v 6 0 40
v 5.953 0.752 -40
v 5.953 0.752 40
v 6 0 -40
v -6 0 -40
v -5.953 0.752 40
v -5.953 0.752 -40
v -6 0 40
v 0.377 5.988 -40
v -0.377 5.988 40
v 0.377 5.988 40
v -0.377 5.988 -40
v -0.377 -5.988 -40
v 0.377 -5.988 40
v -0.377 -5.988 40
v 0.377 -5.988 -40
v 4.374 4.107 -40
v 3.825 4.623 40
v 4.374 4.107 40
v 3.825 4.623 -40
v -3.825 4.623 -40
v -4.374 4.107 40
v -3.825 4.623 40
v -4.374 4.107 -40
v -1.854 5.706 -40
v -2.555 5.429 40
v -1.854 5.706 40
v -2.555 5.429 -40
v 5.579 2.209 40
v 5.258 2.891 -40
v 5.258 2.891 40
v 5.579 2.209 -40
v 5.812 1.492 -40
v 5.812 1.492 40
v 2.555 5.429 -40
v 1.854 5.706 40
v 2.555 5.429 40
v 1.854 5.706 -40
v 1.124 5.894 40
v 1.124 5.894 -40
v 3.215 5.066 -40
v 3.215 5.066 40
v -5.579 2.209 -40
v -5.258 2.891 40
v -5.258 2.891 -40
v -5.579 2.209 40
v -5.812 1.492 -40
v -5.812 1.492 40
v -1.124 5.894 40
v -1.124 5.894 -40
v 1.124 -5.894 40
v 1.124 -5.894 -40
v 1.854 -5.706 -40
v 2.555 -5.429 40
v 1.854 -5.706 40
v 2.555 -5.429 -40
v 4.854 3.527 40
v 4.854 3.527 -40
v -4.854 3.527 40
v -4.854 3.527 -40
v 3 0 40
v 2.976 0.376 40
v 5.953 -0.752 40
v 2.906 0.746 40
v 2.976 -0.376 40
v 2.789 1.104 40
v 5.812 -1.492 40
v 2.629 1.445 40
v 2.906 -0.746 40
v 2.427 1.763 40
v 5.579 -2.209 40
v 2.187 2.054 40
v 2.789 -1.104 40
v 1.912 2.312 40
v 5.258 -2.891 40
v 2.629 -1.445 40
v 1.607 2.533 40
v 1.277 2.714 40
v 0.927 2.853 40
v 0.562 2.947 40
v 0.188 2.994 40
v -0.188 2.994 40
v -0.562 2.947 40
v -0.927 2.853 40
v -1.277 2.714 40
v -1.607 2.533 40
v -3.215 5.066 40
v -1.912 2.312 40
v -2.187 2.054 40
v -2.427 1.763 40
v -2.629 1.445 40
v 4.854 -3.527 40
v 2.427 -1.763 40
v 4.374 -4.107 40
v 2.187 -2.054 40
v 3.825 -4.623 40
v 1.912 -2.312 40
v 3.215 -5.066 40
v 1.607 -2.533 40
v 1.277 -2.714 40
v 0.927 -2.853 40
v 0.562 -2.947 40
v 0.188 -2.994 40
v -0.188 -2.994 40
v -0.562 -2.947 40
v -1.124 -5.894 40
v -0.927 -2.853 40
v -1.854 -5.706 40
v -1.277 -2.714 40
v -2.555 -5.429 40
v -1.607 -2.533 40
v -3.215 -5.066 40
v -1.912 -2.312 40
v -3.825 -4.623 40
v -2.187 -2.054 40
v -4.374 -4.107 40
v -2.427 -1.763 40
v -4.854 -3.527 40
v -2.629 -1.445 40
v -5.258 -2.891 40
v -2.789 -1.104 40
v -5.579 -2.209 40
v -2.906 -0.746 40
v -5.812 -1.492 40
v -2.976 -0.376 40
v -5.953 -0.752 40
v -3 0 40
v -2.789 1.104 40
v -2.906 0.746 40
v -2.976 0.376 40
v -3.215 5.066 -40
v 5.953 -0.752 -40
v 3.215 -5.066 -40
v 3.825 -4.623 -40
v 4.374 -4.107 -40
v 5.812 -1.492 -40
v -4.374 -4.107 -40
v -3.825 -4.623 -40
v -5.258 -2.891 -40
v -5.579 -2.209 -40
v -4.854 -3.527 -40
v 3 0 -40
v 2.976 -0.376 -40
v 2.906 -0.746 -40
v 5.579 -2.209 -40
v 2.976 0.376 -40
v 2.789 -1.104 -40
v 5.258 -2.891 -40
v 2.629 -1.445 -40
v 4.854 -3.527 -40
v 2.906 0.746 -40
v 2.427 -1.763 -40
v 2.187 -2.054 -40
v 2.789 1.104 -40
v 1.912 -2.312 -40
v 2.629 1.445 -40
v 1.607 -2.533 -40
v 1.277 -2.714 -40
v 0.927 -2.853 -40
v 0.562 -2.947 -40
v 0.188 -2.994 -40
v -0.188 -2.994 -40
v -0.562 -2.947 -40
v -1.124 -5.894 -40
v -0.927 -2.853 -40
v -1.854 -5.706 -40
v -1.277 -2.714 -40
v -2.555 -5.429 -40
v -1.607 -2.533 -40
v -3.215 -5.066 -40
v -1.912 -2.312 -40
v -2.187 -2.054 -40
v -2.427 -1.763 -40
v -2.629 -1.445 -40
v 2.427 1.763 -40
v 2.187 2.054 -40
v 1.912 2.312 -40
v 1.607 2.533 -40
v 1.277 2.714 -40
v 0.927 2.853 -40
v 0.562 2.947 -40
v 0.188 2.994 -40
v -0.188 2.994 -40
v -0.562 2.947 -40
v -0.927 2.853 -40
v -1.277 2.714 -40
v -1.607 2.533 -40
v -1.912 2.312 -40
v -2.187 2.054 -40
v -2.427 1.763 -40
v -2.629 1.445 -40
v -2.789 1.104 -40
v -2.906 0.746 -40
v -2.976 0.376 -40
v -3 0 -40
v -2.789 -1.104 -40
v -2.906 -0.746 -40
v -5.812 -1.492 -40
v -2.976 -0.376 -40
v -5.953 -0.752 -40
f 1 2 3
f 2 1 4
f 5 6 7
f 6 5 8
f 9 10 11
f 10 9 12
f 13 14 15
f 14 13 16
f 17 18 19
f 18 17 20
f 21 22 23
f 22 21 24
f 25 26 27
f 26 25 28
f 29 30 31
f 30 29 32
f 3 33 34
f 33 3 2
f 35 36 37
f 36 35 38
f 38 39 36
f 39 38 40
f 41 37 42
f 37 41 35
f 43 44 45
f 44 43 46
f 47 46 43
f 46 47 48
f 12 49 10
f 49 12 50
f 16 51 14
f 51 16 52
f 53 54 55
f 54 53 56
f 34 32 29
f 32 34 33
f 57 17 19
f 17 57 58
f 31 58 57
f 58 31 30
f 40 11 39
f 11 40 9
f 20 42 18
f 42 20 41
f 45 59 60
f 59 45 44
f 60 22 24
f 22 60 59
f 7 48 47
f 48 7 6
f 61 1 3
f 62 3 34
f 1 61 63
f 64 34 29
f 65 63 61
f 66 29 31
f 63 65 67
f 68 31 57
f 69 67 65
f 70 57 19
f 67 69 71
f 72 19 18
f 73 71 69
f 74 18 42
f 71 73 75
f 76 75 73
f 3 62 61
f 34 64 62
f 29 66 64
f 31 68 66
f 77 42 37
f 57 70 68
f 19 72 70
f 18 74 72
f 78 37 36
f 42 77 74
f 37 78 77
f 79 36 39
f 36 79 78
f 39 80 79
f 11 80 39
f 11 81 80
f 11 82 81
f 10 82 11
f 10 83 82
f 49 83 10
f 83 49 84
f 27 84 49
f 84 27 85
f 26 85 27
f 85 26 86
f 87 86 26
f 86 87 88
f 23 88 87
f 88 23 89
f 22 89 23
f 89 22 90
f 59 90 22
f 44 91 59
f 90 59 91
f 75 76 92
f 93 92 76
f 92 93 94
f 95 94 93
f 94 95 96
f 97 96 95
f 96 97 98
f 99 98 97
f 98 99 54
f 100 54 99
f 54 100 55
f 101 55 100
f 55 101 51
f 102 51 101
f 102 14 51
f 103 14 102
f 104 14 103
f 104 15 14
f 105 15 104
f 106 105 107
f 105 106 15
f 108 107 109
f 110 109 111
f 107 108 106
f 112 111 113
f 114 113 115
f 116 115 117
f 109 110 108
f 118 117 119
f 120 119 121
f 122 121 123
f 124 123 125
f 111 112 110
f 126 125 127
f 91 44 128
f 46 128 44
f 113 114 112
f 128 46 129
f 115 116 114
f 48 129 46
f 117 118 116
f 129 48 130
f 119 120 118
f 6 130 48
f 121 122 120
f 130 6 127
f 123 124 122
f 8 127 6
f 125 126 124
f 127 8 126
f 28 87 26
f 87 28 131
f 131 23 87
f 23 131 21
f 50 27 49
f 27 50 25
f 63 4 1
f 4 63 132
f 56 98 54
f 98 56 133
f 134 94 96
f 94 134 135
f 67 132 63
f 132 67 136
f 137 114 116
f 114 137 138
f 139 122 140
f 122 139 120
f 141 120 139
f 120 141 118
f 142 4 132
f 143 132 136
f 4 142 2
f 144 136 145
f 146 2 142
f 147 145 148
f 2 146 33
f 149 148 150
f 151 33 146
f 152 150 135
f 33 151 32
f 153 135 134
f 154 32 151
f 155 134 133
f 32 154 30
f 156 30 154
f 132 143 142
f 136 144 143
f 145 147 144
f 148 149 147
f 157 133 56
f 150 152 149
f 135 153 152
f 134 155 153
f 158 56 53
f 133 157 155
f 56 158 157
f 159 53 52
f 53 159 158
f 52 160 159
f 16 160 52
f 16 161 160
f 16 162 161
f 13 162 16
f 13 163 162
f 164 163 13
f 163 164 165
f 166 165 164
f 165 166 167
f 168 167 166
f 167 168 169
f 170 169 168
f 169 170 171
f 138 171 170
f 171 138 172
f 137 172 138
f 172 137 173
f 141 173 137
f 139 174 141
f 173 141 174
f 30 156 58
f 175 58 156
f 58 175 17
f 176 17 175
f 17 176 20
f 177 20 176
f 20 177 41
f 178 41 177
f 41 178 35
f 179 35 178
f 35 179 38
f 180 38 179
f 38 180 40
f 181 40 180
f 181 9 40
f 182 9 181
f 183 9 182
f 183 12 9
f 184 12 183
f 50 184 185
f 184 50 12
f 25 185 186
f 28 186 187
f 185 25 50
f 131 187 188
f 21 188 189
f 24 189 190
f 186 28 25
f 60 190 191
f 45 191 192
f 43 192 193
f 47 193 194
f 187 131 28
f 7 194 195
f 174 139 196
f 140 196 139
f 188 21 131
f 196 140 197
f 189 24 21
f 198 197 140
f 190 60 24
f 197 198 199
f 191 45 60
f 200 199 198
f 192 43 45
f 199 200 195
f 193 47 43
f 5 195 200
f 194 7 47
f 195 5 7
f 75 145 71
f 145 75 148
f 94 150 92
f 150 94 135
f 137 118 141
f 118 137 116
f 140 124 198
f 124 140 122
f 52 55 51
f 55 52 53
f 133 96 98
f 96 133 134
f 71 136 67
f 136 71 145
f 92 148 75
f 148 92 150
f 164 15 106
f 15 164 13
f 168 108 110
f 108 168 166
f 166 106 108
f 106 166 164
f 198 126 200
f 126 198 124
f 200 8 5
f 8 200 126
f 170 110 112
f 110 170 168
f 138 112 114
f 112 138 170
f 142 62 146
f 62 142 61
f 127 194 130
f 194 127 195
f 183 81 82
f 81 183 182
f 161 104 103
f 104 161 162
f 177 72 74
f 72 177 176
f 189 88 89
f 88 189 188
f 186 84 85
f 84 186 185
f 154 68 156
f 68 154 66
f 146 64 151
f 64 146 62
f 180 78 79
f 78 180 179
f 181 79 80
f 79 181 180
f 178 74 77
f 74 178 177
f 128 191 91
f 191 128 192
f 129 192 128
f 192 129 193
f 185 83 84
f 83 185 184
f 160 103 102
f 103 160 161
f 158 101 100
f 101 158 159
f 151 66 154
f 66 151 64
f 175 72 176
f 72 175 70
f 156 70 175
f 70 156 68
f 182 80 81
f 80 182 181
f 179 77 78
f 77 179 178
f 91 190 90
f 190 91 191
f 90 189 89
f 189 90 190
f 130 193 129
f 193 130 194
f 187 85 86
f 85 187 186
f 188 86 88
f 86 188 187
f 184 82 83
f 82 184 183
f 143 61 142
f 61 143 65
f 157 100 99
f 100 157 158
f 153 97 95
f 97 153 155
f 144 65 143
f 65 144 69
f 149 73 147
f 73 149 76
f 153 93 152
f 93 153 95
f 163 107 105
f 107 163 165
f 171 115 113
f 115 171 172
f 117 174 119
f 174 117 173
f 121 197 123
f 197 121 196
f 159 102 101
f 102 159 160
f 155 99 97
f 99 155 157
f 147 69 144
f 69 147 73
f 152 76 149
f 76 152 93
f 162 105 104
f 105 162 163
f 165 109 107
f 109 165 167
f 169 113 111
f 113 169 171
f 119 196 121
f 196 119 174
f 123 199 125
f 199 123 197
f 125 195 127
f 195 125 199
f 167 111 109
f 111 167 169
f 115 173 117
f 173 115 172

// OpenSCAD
$fn = 50;


difference() {
	union() {
		translate(v = [0, 0, -40.0000000000]) {
			cylinder(h = 80, r = 6.0000000000);
		}
	}
	union() {
		translate(v = [0, 0, -100.0000000000]) {
			cylinder(h = 200, r = 3);
		}
	}
}
